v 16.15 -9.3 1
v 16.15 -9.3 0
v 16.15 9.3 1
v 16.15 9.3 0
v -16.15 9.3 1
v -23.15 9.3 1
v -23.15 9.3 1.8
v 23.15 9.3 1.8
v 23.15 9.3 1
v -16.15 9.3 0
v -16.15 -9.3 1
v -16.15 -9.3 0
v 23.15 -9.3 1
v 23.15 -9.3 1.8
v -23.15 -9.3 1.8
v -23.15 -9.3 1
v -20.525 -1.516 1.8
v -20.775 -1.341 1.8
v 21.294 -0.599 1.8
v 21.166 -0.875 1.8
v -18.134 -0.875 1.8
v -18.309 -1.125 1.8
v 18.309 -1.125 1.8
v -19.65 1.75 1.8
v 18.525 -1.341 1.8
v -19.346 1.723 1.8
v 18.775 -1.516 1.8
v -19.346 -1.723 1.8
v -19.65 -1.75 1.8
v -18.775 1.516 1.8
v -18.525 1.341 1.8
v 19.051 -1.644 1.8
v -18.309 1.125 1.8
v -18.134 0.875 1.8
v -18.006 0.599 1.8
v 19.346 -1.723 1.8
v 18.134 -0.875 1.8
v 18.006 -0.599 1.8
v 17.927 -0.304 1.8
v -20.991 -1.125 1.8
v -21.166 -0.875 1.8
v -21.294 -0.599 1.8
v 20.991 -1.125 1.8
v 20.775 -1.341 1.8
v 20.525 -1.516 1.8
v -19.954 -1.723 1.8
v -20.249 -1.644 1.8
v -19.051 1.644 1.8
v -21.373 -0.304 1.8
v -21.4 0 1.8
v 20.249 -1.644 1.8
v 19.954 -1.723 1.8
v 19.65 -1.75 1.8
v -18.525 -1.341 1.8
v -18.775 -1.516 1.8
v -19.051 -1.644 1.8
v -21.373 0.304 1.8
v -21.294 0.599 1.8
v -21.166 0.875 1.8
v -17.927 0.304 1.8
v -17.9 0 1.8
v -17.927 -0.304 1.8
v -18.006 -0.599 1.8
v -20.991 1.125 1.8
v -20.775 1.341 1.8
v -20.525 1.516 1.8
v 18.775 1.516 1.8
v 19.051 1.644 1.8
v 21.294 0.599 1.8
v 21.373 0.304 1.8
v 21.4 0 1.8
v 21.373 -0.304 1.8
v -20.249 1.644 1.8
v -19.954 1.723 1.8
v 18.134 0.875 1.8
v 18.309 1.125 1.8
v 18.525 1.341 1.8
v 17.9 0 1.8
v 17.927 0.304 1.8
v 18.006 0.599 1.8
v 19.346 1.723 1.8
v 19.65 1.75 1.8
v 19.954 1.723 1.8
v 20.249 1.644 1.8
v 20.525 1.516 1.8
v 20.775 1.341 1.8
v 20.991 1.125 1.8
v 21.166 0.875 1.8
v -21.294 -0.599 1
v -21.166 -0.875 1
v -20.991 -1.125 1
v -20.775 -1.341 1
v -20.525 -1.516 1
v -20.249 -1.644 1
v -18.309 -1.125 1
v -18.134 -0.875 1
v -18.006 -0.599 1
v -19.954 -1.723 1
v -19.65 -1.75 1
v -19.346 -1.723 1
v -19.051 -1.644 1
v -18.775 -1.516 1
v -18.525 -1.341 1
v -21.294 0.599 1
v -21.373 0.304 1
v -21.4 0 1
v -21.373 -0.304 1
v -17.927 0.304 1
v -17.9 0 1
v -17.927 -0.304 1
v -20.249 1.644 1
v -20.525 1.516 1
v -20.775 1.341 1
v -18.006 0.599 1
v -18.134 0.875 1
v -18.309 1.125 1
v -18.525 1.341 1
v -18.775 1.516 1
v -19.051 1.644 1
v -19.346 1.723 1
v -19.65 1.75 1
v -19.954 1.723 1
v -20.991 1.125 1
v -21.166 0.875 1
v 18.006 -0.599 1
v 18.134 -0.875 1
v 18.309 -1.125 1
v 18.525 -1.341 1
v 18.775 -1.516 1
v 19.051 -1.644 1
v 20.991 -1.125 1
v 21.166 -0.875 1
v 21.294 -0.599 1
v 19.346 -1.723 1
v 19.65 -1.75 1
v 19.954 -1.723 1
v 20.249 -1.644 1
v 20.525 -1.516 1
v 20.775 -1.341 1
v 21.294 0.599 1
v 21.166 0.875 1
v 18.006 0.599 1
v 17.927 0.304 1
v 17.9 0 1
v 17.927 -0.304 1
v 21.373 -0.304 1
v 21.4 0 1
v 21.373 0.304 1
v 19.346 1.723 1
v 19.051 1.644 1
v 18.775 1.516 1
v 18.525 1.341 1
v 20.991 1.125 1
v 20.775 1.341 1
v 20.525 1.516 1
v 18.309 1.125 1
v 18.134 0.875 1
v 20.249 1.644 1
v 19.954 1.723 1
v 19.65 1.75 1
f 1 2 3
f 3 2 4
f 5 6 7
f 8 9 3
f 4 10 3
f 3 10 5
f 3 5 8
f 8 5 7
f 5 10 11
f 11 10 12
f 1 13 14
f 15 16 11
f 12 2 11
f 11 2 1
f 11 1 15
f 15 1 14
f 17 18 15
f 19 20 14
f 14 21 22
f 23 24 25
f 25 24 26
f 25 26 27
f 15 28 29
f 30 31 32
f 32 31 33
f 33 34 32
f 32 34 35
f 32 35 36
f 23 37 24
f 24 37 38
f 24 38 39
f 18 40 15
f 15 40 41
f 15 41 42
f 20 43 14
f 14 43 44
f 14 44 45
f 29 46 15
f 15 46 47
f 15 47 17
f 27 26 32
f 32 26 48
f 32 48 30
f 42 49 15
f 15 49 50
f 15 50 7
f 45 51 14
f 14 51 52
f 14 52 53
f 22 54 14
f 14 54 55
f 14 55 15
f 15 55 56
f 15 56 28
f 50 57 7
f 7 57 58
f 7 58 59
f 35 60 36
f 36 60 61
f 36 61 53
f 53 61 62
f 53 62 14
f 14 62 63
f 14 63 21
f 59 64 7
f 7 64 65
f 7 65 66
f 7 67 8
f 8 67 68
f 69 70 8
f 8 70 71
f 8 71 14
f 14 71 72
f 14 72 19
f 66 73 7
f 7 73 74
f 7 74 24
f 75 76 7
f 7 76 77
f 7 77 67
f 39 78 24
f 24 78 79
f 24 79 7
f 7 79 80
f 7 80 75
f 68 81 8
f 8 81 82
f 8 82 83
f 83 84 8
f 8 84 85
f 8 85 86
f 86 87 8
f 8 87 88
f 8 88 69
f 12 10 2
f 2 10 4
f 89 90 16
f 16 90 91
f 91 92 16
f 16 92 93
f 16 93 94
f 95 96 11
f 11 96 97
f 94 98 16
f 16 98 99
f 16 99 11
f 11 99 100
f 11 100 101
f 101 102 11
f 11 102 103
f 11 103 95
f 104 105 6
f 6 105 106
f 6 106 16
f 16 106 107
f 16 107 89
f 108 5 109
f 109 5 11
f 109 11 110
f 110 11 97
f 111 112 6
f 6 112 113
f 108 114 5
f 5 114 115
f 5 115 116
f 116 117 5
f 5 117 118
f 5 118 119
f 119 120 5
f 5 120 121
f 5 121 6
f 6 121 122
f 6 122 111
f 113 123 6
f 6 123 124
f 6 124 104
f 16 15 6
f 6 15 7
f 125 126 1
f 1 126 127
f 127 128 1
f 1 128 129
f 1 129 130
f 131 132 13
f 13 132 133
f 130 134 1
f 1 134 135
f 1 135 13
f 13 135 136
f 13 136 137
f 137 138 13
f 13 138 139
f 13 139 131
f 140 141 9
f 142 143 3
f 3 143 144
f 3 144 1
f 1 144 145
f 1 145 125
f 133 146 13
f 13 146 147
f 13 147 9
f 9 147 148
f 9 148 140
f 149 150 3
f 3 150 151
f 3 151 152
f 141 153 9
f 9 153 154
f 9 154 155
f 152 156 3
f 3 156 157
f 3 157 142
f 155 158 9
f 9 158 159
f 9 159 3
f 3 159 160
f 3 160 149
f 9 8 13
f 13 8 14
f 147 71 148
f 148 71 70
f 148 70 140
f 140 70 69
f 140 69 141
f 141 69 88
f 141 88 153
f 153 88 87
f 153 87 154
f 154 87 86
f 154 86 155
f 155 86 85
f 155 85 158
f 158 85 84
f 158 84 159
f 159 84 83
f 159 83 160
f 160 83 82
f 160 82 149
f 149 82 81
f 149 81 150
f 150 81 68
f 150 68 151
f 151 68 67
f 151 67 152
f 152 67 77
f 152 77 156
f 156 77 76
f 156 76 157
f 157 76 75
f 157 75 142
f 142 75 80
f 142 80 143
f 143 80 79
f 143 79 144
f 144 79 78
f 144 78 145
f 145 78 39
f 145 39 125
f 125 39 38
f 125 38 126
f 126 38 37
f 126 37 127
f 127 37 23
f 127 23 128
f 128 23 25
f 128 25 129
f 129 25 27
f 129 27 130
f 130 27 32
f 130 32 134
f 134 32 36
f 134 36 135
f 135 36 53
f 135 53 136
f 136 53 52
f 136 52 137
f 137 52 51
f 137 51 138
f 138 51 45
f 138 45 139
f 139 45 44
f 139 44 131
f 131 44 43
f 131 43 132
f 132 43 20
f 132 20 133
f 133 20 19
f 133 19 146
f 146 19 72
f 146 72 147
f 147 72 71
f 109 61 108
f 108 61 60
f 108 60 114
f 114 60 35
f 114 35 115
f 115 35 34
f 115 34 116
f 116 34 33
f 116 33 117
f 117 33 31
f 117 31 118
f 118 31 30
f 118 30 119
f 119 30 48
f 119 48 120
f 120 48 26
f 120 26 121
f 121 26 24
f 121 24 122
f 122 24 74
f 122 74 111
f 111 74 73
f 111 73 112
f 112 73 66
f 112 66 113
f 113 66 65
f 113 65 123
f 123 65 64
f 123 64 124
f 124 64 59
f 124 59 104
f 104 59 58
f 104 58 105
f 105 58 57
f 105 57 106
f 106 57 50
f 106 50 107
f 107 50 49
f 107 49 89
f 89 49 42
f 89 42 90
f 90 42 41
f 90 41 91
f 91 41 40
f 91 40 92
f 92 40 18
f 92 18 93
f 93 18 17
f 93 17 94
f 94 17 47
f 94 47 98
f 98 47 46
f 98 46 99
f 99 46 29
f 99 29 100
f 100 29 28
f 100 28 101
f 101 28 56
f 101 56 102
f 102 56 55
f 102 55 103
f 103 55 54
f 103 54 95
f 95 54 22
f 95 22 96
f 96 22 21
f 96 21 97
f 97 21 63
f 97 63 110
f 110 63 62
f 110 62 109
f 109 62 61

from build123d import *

# Parameters (mm, degrees)
SKETCH1_W           = 32.3
SKETCH1_H           = 18.6
BOSS_EXTRUDE1_DEPTH = 1.8
SKETCH5_W           = 7
SKETCH5_H           = 18.6
BOSS_EXTRUDE3_DEPTH = 0.8
SKETCH6_R           = 1.75
CUT_EXTRUDE3_DEPTH  = 0.8


with BuildPart() as part:
    # Sketch1 → Boss-Extrude1 (new body)
    with BuildSketch(Plane.XY):
        Rectangle(SKETCH1_W, SKETCH1_H)
    extrude(amount=BOSS_EXTRUDE1_DEPTH)

    # Sketch5 → Boss-Extrude3 (add)
    with BuildSketch(Plane.XY.offset(1.8)):
        with Locations((-19.65, 0)):
            Rectangle(SKETCH5_W, SKETCH5_H)
        with Locations((19.65, 0)):
            Rectangle(SKETCH5_W, SKETCH5_H)
    extrude(amount=-BOSS_EXTRUDE3_DEPTH)

    # Sketch6 → Cut-Extrude3 (cut)
    with BuildSketch(Plane.XY.offset(1.8)):
        with Locations((-19.65, 0)):
            Circle(SKETCH6_R)
        with Locations((19.65, 0)):
            Circle(SKETCH6_R)
    extrude(amount=-CUT_EXTRUDE3_DEPTH, mode=Mode.SUBTRACT)


solid = part.part
